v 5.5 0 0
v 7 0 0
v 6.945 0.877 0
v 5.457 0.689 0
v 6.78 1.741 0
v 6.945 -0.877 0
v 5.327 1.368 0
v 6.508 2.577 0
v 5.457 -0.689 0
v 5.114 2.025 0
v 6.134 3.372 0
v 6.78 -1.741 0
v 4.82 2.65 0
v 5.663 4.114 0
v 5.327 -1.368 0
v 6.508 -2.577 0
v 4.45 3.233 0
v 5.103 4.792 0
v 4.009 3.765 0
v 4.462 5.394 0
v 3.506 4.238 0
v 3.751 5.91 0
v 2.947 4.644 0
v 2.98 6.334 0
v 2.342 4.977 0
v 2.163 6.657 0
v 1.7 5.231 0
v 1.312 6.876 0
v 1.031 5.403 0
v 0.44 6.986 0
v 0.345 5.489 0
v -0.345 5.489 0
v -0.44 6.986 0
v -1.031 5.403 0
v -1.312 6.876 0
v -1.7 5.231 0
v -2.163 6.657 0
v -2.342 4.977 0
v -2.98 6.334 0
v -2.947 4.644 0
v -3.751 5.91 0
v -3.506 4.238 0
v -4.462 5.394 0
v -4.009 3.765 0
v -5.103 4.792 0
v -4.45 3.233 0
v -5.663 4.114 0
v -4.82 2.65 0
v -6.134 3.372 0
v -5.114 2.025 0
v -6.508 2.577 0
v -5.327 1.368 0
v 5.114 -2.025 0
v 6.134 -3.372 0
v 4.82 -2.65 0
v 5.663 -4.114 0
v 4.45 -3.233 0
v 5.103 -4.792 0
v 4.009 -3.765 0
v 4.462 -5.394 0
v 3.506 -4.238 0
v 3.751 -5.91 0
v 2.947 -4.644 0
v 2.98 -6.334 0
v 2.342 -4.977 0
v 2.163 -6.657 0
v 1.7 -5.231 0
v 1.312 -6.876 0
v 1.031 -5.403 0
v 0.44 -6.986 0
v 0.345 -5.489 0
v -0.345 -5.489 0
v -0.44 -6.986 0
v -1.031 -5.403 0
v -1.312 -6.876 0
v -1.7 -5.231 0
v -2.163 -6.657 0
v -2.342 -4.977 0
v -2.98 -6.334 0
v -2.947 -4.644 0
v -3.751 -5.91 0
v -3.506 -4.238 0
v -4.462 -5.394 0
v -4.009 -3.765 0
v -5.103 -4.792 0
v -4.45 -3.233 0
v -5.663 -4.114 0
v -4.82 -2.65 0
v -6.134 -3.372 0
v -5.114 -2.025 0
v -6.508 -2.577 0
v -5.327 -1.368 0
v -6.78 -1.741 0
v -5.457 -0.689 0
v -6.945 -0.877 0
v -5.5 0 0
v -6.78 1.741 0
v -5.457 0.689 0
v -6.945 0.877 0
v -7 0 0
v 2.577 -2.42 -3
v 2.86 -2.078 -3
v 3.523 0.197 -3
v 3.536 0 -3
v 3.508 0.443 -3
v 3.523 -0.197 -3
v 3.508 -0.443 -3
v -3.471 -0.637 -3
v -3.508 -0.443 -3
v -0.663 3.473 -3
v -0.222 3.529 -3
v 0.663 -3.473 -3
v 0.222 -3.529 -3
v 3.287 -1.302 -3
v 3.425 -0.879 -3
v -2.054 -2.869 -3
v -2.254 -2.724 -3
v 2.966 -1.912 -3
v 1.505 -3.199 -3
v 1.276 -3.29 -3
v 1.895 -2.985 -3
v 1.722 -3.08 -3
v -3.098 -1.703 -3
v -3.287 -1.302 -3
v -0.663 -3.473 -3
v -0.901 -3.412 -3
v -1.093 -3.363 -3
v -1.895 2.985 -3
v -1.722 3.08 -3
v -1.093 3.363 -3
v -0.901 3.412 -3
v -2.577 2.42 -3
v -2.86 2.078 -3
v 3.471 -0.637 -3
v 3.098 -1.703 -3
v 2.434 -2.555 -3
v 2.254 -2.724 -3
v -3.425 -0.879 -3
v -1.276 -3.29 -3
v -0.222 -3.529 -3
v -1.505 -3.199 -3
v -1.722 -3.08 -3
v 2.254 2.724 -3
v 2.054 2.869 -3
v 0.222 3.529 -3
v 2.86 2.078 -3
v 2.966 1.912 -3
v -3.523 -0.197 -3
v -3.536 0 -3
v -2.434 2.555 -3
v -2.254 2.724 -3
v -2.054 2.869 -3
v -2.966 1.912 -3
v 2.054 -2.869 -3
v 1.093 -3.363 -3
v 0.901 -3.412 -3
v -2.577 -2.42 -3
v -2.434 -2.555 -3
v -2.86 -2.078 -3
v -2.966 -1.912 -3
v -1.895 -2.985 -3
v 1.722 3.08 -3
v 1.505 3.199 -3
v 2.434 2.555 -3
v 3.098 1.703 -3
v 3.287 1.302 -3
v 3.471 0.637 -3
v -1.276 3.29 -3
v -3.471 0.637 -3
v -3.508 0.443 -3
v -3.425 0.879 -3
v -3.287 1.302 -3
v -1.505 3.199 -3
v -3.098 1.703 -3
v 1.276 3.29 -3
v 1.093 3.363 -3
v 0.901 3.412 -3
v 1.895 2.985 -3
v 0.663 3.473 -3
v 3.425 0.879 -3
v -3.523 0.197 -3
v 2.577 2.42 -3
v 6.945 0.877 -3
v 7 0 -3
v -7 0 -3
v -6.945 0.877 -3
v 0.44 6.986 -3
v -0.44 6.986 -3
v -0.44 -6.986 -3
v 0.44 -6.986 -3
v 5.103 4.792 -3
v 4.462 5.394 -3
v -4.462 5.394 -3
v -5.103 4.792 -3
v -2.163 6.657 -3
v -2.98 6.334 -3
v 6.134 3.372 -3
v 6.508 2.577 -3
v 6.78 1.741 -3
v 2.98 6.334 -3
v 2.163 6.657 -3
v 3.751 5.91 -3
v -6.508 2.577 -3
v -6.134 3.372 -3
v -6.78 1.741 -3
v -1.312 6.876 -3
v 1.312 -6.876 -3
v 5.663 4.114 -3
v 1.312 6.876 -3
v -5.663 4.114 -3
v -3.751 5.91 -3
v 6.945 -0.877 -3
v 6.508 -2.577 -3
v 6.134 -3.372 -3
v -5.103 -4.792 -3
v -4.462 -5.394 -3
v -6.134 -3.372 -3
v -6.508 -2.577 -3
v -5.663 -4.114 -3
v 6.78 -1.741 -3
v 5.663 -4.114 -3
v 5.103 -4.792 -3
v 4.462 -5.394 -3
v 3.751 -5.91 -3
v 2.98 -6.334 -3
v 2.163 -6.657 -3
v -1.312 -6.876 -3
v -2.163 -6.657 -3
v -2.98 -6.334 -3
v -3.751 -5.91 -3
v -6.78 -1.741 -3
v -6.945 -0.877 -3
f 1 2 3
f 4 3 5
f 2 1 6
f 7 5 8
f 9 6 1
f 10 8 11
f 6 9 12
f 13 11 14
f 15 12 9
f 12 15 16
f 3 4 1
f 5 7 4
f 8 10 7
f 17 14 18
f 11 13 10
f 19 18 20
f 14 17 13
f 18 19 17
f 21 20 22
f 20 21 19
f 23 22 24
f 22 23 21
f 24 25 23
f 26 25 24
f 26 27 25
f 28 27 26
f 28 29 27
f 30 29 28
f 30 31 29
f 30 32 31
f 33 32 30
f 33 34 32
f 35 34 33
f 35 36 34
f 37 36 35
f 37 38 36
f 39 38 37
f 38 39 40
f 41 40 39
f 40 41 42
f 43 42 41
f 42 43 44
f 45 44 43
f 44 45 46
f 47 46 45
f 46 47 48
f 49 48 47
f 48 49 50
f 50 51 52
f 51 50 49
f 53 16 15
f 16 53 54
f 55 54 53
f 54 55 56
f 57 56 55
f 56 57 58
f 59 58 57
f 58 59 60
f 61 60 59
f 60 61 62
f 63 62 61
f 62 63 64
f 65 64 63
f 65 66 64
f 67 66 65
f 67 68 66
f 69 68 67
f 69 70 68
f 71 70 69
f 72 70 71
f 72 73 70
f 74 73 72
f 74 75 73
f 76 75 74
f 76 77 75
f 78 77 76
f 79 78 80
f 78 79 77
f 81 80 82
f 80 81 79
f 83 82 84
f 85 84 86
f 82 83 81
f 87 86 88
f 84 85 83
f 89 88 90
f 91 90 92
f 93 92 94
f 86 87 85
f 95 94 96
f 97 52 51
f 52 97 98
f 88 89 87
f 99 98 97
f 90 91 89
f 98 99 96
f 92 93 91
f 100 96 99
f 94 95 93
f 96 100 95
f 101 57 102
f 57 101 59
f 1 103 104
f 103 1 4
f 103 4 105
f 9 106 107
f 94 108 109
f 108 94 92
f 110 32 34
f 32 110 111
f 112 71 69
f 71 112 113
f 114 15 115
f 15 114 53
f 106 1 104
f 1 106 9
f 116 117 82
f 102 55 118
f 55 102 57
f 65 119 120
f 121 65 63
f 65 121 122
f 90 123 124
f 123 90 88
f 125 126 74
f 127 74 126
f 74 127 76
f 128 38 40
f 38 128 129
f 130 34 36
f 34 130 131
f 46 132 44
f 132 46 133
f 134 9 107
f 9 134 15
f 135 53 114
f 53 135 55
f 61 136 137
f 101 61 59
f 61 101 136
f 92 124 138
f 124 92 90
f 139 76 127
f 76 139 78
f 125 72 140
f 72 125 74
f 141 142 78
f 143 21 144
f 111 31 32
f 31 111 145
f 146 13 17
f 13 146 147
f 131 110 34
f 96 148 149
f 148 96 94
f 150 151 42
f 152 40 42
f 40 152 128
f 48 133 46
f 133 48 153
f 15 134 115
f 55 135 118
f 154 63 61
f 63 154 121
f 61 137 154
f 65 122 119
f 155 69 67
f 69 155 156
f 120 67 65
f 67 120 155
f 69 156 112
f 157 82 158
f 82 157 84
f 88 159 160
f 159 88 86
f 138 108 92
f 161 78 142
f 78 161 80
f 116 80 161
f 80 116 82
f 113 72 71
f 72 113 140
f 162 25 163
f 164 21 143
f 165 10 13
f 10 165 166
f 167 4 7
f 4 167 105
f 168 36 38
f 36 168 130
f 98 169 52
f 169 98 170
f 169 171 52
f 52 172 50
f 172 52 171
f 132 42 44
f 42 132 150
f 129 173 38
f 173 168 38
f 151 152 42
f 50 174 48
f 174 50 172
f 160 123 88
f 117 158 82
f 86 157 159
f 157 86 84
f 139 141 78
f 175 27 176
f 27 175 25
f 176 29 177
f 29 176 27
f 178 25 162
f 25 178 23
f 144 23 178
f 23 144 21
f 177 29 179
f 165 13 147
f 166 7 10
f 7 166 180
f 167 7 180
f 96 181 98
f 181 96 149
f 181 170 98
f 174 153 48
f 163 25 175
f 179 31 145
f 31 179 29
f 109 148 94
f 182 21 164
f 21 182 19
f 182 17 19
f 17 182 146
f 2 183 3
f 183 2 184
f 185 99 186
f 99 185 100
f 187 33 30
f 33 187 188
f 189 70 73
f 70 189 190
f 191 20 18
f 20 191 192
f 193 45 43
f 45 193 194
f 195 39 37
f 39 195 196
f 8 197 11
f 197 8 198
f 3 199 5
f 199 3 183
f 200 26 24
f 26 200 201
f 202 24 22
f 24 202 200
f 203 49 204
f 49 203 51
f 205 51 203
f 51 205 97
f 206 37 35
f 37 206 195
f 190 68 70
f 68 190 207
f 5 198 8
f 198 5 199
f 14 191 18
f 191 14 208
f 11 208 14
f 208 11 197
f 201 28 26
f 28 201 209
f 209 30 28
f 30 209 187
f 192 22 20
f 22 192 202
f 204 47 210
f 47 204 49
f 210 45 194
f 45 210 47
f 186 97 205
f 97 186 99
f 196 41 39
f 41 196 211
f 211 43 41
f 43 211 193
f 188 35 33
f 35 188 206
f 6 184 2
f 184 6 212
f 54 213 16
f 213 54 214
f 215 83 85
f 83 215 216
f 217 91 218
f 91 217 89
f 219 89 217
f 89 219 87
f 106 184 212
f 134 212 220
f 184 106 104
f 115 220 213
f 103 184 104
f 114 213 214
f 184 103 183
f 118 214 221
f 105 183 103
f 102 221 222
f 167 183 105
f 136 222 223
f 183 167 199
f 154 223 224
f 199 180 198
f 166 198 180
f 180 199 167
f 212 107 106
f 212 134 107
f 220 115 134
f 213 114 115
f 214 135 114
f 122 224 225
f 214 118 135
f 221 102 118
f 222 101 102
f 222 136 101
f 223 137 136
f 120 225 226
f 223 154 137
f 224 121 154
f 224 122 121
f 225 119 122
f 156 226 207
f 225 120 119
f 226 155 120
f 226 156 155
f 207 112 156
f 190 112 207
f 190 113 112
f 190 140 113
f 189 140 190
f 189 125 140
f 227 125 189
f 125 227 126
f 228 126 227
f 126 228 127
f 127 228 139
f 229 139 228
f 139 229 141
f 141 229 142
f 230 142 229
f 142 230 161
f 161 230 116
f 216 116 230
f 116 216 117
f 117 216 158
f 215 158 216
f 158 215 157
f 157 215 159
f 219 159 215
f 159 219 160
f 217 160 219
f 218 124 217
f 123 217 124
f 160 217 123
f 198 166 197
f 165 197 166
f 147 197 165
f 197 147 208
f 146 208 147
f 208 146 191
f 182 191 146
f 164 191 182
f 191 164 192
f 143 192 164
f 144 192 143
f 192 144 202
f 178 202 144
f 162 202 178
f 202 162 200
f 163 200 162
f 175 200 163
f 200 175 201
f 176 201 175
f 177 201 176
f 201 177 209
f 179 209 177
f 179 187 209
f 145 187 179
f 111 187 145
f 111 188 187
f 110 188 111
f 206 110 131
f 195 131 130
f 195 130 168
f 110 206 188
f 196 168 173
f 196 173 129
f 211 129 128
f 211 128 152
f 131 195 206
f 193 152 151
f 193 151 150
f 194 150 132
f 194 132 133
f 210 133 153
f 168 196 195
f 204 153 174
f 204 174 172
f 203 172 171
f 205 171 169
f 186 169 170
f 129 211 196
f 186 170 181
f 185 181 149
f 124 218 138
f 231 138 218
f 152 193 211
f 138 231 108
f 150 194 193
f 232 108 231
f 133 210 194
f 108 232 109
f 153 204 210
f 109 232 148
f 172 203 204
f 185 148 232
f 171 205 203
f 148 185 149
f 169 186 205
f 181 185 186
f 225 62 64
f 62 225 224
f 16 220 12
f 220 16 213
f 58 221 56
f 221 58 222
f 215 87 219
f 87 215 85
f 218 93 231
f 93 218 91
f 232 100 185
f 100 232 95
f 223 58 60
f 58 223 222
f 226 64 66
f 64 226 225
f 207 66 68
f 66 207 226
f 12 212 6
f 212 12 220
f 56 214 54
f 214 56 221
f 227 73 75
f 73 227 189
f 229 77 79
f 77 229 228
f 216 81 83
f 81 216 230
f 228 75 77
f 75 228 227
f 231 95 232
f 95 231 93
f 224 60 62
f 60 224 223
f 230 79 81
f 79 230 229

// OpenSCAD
$fn = 50;


difference() {
	union() {
		translate(v = [0, 0, -3.0000000000]) {
			cylinder(h = 3, r = 7.0000000000);
		}
	}
	union() {
		translate(v = [0, 0, 0]) {
			rotate(a = [0, 0, 0]) {
				difference() {
					union() {
						#translate(v = [0, 0, -3.0000000000]) {
							cylinder(h = 3, r = 2.2500000000);
						}
						#translate(v = [0, 0, -4.2000000000]) {
							cylinder(h = 4.2000000000, r = 7.0000000000, r1 = 2.7500000000, r2 = 5.5000000000);
						}
						#translate(v = [0, 0, -3.0000000000]) {
							cylinder(h = 3, r = 2.7500000000);
						}
						#translate(v = [0, 0, -3.0000000000]) {
							cylinder(h = 3, r = 2.2500000000);
						}
					}
					union();
				}
			}
		}
	}
}
